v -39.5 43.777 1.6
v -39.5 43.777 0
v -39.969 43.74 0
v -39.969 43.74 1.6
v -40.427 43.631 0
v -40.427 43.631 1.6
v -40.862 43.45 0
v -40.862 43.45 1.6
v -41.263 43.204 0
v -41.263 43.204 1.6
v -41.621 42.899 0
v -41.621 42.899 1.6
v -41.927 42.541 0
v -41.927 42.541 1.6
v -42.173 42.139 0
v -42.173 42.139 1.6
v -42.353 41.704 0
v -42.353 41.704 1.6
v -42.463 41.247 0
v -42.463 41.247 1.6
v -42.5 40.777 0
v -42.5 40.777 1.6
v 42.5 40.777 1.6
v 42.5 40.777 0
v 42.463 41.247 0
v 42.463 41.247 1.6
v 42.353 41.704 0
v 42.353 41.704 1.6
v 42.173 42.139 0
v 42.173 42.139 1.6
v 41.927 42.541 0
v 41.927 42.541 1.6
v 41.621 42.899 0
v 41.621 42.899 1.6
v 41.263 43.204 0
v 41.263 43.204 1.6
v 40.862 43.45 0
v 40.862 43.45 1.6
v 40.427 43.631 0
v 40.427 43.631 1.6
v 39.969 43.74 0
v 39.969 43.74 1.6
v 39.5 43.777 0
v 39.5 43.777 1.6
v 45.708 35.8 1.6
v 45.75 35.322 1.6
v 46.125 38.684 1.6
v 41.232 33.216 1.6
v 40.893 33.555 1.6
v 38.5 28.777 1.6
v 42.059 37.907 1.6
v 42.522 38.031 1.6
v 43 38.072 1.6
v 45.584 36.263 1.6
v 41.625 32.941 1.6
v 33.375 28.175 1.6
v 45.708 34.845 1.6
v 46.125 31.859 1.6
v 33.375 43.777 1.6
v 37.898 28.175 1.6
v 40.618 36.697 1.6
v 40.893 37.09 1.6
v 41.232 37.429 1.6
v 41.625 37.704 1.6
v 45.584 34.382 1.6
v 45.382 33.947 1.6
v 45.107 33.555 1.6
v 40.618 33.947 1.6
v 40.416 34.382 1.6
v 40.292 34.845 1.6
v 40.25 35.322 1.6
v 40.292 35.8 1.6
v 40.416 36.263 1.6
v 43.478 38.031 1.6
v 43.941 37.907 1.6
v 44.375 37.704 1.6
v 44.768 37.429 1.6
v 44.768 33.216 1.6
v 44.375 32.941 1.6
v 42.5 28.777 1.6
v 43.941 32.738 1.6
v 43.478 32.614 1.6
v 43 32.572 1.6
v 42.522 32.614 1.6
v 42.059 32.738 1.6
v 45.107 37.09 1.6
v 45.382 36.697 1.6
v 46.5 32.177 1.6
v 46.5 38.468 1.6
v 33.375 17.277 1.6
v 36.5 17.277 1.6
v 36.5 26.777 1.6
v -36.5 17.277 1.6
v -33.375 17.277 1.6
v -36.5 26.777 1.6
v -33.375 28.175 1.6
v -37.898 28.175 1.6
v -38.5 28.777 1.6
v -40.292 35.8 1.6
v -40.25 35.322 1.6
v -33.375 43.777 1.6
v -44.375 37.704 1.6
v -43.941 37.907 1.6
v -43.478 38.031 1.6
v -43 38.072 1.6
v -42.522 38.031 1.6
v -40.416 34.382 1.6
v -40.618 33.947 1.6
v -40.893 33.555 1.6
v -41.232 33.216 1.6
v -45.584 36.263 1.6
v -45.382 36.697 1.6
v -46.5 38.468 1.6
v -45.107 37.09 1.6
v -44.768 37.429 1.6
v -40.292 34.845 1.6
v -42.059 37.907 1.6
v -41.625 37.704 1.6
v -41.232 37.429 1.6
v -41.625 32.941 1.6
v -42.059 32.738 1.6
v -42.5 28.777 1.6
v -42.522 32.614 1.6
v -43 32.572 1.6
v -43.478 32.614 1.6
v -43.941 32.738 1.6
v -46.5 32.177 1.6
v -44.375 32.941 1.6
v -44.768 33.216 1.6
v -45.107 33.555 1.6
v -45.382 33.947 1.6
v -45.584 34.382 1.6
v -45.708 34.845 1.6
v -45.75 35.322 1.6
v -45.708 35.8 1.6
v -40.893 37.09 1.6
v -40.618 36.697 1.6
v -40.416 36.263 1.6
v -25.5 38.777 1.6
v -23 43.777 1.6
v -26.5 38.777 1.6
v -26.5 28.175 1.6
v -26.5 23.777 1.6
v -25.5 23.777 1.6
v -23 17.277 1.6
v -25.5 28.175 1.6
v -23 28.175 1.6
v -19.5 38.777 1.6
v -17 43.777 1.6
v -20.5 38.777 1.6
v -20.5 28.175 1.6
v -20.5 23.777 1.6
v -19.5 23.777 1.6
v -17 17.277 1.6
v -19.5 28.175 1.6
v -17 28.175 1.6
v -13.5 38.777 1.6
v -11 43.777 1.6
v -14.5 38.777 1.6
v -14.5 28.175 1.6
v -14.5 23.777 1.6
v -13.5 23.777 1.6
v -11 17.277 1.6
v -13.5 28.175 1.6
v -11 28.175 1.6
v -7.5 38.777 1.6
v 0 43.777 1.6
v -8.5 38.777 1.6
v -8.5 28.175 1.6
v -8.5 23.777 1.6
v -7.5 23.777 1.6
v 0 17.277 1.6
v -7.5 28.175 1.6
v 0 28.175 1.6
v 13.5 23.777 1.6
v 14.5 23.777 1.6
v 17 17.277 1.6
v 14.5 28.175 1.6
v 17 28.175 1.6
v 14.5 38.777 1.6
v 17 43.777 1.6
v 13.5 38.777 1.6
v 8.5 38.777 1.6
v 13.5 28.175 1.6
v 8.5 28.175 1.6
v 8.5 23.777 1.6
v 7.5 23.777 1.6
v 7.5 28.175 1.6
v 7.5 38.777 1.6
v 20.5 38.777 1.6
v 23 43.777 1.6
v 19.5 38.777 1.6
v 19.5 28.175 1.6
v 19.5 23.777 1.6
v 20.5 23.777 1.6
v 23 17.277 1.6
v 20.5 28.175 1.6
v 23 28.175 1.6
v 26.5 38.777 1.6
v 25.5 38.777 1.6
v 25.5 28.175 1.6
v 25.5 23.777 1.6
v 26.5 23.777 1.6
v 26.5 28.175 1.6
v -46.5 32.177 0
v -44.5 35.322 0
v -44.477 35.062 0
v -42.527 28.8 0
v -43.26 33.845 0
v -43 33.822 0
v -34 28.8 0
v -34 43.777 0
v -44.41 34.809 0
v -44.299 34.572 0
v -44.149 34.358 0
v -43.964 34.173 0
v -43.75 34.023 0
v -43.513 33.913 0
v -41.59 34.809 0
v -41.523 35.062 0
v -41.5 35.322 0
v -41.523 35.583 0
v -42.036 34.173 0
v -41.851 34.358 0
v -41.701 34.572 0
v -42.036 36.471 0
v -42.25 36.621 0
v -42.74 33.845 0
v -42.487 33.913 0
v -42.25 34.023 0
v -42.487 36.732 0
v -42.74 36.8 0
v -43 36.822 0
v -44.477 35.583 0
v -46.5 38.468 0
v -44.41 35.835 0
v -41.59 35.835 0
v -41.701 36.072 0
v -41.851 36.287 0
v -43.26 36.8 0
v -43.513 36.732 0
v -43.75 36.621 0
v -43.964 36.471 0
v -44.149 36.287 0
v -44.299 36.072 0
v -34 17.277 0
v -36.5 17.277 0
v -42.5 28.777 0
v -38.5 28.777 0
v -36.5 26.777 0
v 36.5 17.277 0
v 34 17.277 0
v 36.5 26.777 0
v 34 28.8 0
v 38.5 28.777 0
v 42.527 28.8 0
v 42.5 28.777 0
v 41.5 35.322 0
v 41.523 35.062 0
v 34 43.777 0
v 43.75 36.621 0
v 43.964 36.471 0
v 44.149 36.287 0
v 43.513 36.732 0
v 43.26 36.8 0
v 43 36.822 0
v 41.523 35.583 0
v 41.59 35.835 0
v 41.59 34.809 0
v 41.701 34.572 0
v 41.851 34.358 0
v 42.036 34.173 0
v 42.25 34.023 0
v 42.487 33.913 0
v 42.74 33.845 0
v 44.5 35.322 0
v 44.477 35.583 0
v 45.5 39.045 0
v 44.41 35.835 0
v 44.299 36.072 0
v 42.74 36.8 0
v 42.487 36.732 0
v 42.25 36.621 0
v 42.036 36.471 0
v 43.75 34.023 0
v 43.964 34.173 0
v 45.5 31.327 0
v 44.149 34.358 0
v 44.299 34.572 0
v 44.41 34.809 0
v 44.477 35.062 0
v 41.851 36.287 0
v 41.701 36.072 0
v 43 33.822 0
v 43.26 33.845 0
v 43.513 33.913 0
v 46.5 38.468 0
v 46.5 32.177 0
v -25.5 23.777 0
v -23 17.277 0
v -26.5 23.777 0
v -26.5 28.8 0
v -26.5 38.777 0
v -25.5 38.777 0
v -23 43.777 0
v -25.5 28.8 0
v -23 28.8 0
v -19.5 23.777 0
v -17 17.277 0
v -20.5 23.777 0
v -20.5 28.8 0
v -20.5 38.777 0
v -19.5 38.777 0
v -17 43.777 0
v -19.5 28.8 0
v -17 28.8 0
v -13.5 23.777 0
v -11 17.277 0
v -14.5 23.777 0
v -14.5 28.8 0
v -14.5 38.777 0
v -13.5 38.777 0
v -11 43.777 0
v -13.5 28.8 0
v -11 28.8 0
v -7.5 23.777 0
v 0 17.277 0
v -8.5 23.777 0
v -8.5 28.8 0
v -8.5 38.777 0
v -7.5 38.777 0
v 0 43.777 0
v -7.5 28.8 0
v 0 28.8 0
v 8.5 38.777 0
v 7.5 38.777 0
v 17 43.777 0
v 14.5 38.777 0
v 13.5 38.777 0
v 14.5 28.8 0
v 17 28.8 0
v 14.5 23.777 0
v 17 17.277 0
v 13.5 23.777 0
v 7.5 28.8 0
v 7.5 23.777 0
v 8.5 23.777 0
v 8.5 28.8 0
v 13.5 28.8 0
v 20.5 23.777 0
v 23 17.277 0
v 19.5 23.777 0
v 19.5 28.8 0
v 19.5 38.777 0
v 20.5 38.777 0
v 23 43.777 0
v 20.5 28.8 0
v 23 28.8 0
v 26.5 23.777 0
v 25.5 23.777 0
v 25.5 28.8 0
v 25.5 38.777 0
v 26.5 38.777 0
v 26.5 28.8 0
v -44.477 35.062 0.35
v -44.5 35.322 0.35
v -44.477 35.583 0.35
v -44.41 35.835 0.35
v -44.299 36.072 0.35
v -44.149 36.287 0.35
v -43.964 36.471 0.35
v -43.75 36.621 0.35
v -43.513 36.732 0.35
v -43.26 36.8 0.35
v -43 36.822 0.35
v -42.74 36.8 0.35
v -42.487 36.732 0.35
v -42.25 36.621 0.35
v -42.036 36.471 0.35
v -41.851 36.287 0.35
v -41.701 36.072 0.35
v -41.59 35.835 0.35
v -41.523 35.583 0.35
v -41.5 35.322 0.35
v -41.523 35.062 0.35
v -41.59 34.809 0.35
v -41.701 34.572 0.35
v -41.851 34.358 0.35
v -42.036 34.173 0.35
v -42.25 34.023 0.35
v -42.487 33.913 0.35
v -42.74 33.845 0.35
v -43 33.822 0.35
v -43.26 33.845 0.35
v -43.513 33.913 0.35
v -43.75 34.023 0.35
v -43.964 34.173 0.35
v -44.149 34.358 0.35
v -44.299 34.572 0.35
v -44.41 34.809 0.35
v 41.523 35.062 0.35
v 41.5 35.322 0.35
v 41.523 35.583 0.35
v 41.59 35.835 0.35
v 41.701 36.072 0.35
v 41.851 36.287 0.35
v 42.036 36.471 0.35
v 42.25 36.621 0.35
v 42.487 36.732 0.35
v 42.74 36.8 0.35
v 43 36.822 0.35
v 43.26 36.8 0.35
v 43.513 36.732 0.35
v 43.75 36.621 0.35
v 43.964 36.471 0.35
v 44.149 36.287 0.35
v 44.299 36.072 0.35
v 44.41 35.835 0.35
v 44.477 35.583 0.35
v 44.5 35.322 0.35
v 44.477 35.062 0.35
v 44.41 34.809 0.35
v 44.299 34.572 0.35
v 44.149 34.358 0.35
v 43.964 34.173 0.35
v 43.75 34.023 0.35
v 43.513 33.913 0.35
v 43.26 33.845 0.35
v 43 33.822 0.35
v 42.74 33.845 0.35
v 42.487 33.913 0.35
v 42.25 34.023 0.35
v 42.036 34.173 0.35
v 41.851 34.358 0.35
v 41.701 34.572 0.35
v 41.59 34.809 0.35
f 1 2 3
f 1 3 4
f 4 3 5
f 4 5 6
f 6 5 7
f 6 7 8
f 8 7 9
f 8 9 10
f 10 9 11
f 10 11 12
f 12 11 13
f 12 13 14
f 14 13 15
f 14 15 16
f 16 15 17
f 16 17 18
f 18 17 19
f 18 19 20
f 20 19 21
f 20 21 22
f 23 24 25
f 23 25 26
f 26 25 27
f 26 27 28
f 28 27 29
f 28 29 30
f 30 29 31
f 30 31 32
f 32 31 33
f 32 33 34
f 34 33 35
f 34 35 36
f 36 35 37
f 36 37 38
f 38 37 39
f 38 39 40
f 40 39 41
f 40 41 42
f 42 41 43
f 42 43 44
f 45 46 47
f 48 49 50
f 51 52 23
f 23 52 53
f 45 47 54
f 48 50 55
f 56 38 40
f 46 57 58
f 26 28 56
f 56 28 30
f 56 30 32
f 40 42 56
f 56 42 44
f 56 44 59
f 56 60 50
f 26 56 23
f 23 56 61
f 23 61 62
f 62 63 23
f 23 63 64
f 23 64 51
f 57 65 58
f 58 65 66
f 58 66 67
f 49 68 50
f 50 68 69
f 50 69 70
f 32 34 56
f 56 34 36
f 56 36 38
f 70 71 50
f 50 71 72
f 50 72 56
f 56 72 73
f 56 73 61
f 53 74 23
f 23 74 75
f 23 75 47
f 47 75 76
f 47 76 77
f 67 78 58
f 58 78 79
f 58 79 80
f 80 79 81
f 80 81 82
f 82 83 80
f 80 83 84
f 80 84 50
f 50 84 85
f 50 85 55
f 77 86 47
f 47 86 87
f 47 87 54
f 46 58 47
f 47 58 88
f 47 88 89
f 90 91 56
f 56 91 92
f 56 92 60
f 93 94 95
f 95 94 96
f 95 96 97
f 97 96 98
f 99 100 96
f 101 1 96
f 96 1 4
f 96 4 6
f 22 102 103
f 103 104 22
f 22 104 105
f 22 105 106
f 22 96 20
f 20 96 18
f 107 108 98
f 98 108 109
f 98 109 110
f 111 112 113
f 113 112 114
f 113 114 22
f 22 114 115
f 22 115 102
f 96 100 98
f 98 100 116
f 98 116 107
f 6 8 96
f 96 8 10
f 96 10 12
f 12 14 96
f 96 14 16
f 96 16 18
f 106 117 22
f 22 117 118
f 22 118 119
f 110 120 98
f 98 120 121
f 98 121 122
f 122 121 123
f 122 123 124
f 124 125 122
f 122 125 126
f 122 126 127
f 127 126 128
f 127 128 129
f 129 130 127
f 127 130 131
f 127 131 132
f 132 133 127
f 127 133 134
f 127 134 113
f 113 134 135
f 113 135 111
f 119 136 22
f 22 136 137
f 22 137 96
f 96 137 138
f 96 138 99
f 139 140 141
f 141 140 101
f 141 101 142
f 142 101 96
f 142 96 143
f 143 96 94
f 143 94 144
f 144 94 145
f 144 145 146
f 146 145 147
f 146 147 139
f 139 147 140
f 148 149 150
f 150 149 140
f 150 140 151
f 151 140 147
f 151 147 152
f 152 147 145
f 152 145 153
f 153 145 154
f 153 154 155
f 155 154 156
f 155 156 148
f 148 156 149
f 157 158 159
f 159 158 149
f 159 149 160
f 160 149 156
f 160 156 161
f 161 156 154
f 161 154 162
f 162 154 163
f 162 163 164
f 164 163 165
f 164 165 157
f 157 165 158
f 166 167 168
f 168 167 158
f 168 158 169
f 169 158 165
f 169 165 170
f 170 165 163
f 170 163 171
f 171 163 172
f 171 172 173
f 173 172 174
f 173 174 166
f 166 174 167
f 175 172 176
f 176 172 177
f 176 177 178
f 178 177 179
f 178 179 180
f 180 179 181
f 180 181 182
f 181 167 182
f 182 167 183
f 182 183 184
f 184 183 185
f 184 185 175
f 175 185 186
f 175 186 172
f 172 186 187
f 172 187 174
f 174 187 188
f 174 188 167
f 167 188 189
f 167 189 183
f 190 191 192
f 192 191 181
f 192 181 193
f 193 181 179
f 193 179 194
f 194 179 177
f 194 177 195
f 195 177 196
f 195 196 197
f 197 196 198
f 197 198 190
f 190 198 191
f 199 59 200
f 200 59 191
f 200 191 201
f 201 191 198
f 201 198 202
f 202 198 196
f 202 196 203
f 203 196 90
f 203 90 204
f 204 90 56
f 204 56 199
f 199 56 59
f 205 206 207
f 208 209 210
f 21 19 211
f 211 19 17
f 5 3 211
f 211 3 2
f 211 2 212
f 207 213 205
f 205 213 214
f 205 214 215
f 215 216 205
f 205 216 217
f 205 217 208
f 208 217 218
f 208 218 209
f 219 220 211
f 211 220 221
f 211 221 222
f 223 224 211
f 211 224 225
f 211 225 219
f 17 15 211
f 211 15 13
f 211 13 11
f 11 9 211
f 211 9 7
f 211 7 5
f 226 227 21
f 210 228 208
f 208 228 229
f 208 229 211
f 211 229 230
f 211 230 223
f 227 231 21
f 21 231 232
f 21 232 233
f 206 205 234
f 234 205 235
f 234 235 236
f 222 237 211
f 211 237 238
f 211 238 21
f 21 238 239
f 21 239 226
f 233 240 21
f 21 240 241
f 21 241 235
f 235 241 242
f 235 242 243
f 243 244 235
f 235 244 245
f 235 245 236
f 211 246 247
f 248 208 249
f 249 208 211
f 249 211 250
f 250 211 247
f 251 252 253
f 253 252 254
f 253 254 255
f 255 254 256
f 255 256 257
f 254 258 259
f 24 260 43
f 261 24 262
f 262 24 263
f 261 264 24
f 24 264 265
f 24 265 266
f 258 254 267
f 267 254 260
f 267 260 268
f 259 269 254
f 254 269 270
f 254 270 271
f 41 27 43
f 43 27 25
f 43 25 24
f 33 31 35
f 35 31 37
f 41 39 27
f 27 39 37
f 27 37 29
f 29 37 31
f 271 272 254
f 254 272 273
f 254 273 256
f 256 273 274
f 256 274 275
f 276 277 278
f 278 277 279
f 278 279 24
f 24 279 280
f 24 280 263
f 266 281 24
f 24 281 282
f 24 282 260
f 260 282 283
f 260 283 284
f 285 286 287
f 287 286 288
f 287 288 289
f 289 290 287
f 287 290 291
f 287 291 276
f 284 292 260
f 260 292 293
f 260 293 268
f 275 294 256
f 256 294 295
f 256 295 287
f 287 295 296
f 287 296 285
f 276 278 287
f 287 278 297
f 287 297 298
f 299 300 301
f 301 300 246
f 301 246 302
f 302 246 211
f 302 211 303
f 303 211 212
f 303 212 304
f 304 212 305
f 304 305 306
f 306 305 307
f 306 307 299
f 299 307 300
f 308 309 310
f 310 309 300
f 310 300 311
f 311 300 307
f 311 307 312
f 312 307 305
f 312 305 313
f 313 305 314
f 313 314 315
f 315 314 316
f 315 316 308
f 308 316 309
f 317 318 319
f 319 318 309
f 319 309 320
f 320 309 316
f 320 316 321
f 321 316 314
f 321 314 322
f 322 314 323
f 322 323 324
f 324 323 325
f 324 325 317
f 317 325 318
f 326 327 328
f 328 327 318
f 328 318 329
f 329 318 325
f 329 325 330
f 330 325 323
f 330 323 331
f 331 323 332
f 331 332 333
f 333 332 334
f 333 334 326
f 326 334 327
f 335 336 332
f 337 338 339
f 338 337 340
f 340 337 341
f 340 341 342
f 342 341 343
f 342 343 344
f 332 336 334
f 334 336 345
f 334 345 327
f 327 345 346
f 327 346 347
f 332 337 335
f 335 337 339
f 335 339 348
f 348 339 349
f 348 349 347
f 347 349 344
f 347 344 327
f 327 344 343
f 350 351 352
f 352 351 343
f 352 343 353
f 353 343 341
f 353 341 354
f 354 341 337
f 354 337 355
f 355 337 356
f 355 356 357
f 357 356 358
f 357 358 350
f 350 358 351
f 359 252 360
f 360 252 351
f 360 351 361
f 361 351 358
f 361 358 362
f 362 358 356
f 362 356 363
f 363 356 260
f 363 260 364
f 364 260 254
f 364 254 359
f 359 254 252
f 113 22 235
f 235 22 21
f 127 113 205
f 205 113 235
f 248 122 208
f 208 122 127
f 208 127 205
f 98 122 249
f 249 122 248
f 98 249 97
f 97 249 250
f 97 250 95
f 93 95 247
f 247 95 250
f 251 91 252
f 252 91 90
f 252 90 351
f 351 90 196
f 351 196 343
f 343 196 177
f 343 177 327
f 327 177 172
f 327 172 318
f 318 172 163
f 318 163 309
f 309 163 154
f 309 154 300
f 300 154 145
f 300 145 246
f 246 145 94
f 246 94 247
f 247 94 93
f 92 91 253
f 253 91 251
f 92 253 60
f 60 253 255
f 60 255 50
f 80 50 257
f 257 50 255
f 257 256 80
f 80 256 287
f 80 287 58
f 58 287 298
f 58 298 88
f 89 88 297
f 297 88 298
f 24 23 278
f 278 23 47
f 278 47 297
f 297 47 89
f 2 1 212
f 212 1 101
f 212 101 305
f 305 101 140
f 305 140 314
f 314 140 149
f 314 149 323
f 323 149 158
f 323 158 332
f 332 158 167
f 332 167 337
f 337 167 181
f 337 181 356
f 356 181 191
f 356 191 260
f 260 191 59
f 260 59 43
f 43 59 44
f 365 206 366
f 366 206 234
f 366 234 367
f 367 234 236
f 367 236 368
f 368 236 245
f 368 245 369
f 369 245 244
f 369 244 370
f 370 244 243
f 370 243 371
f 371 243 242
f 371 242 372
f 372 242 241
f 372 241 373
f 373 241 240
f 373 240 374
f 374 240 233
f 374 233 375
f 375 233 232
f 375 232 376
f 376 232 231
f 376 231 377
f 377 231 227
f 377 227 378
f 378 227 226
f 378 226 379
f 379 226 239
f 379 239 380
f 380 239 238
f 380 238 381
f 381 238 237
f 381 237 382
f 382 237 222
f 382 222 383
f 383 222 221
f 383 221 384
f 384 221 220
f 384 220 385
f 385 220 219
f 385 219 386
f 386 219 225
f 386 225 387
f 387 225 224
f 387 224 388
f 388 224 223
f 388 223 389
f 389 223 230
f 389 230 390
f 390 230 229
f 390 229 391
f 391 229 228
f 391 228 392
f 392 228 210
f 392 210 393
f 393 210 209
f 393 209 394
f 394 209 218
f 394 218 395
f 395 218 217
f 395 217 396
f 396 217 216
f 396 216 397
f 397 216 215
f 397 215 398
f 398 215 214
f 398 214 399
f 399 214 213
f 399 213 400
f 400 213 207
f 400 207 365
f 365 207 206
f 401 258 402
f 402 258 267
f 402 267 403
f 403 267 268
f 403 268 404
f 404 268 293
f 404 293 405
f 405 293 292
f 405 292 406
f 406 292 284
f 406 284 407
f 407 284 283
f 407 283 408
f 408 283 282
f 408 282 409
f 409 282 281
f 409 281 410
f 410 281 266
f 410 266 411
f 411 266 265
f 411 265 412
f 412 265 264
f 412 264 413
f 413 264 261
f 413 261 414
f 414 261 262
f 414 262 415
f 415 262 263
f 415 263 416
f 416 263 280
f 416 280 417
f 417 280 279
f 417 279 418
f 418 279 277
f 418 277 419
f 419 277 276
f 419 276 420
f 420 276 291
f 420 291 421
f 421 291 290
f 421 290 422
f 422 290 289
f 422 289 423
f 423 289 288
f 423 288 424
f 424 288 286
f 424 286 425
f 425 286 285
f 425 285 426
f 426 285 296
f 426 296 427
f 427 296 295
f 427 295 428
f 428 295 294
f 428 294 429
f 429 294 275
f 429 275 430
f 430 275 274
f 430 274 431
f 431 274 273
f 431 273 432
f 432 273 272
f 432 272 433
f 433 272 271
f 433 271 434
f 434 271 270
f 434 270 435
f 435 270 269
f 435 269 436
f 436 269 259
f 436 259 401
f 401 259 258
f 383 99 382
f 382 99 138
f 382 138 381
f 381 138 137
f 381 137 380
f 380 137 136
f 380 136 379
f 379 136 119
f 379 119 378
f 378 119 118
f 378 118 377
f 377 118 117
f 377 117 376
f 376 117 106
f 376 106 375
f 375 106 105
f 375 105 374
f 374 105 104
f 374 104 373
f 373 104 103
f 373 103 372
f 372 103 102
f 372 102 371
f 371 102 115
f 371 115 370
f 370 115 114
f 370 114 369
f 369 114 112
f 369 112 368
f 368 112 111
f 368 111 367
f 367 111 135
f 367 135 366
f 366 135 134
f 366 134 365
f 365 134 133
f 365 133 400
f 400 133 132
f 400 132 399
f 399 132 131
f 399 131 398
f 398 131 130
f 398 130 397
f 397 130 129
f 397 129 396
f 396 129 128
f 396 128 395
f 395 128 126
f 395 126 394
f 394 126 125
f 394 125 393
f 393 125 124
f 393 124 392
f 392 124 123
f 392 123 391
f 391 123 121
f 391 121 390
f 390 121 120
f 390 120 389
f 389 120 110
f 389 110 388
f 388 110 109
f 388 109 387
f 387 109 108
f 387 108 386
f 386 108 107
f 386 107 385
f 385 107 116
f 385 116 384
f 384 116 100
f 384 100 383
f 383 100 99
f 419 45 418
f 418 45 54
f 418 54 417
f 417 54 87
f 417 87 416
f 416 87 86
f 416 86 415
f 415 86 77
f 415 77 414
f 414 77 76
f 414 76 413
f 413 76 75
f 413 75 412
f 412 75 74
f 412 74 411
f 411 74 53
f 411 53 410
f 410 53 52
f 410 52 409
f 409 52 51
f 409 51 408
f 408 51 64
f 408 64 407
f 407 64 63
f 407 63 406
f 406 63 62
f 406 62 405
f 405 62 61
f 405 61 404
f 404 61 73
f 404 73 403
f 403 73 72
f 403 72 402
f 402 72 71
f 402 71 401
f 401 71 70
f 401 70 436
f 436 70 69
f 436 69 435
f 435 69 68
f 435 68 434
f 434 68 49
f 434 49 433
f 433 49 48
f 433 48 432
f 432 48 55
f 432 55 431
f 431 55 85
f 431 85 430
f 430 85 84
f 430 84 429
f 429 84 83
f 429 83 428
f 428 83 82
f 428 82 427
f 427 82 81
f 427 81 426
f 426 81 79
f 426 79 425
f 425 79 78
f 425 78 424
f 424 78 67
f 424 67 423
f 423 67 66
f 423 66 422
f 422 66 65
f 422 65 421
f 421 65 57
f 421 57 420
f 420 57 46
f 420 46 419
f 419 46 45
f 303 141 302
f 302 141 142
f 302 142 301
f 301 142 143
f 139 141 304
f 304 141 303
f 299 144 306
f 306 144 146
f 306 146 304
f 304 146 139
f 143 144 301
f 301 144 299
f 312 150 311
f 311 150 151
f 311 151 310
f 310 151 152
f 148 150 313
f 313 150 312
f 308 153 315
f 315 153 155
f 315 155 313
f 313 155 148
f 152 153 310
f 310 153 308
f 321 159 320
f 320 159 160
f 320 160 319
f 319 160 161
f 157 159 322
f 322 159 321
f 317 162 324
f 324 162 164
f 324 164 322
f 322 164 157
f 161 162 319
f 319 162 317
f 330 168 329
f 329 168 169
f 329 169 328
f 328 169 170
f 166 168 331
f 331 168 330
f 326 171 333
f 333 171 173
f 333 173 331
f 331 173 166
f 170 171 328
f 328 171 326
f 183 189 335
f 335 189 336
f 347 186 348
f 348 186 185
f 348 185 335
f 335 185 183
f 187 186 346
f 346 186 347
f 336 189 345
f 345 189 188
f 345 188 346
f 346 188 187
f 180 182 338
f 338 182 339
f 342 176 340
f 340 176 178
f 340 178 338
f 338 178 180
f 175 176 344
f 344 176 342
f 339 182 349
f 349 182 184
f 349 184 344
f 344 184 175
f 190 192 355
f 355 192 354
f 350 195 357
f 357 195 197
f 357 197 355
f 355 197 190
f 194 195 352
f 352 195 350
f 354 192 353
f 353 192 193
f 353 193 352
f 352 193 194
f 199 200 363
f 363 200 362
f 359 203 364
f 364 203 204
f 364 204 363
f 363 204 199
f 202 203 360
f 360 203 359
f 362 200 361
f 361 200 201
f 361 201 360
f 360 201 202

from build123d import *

# Parameters (mm, degrees)
SKETCH1_R                   = 1.5
BOSS_EXTRUDE1_DEPTH         = 1.6
FILLET1_R                   = 3
FILLET2_R                   = 3
SKETCH2_R                   = 2.75
SCREW_HEADS_DEPTH           = 2
SCREW_HEADS_DRAFT           = -45
SCREW_HEADS_PROFILE_2_DEPTH = 2
SCREW_HEADS_PROFILE_2_DRAFT = -45
SKETCH3_W                   = 1
SKETCH3_H                   = 15
AIR_VENTS_DEPTH             = 2


with BuildPart() as part:
    # Sketch1 → Boss-Extrude1 (new body)
    with BuildSketch(Plane.XY):
        Polygon((-42.5, 43.777330307), (42.5, 43.777330307), (42.5, 40.777330307), (46.5, 38.467511309), (46.5, 32.177265409), (42.5, 28.777330307), (38.5, 28.777330307), (36.5, 26.777330307), (36.5, 17.277330307), (-36.5, 17.277330307), (-36.5, 26.777330307), (-38.5, 28.777330307), (-42.5, 28.777330307), (-46.5, 32.177265409), (-46.5, 38.467511309), (-42.5, 40.777330307), align=None)
        with Locations((-43, 35.322388359)):
            Circle(SKETCH1_R, mode=Mode.SUBTRACT)
        with Locations(Location((43, 35.322388359, 0), (0, 0, 180))):
            Circle(SKETCH1_R, mode=Mode.SUBTRACT)
    extrude(amount=BOSS_EXTRUDE1_DEPTH)

    # Fillet1
    fillet1_edges = [part.edges().sort_by_distance(p)[0] for p in [
        (42.5, 43.777330307, 0.8),
    ]]
    fillet(fillet1_edges, radius=FILLET1_R - 0.0001)  # a hair under: the kernel refuses the full size

    # Fillet2
    fillet2_edges = [part.edges().sort_by_distance(p)[0] for p in [
        (-42.5, 43.777330307, 0.8),
    ]]
    fillet(fillet2_edges, radius=FILLET2_R - 0.0001)  # a hair under: the kernel refuses the full size


with BuildPart() as screw_heads_tool:
    # Sketch2 → Screw Heads (with draft: the straight prism first)
    with BuildSketch(Plane.XY.offset(1.6)):
        with Locations((-43, 35.322388359)):
            Circle(SKETCH2_R)
    extrude(amount=-SCREW_HEADS_DEPTH)
    # Screw Heads: the draft: its side faces are tilted about the plane it starts from
    screw_heads_sides = [screw_heads_tool.faces().sort_by_distance(p)[0] for p in [
        (-45.75, 35.322388359, 0.6),
    ]]
    draft(screw_heads_sides, Plane.XY.offset(1.6), SCREW_HEADS_DRAFT)


with BuildPart() as part_1:
    add(part.part)

    # Screw Heads: cut by screw_heads_tool
    add(screw_heads_tool.part, mode=Mode.SUBTRACT)


with BuildPart() as screw_heads_profile_2_tool:
    # Sketch2 → Screw Heads profile 2 (with draft: the straight prism first)
    with BuildSketch(Plane.XY.offset(1.6)):
        with Locations((43, 35.322388359)):
            Circle(SKETCH2_R)
    extrude(amount=-SCREW_HEADS_PROFILE_2_DEPTH)
    # Screw Heads profile 2: the draft: its side faces are tilted about the plane it starts from
    screw_heads_profile_2_sides = [screw_heads_profile_2_tool.faces().sort_by_distance(p)[0] for p in [
        (40.25, 35.322388359, 0.6),
    ]]
    draft(screw_heads_profile_2_sides, Plane.XY.offset(1.6), SCREW_HEADS_PROFILE_2_DRAFT)


with BuildPart() as part_2:
    add(part_1.part)

    # Screw Heads profile 2: cut by screw_heads_profile_2_tool
    add(screw_heads_profile_2_tool.part, mode=Mode.SUBTRACT)

    # Sketch3 → Air Vents (cut)
    with BuildSketch(Plane.XY.offset(1.6)):
        with Locations((-26, 31.277330307)):
            Rectangle(SKETCH3_W, SKETCH3_H)
        with Locations((-20, 31.277330307)):
            Rectangle(SKETCH3_W, SKETCH3_H)
        with Locations((-14, 31.277330307)):
            Rectangle(SKETCH3_W, SKETCH3_H)
        with Locations((-8, 31.277330307)):
            Rectangle(SKETCH3_W, SKETCH3_H)
        with Locations((8, 31.277330307)):
            Rectangle(SKETCH3_W, SKETCH3_H)
        with Locations((14, 31.277330307)):
            Rectangle(SKETCH3_W, SKETCH3_H)
        with Locations((20, 31.277330307)):
            Rectangle(SKETCH3_W, SKETCH3_H)
        with Locations((26, 31.277330307)):
            Rectangle(SKETCH3_W, SKETCH3_H)
    extrude(amount=-AIR_VENTS_DEPTH, mode=Mode.SUBTRACT)


solid = part_2.part
